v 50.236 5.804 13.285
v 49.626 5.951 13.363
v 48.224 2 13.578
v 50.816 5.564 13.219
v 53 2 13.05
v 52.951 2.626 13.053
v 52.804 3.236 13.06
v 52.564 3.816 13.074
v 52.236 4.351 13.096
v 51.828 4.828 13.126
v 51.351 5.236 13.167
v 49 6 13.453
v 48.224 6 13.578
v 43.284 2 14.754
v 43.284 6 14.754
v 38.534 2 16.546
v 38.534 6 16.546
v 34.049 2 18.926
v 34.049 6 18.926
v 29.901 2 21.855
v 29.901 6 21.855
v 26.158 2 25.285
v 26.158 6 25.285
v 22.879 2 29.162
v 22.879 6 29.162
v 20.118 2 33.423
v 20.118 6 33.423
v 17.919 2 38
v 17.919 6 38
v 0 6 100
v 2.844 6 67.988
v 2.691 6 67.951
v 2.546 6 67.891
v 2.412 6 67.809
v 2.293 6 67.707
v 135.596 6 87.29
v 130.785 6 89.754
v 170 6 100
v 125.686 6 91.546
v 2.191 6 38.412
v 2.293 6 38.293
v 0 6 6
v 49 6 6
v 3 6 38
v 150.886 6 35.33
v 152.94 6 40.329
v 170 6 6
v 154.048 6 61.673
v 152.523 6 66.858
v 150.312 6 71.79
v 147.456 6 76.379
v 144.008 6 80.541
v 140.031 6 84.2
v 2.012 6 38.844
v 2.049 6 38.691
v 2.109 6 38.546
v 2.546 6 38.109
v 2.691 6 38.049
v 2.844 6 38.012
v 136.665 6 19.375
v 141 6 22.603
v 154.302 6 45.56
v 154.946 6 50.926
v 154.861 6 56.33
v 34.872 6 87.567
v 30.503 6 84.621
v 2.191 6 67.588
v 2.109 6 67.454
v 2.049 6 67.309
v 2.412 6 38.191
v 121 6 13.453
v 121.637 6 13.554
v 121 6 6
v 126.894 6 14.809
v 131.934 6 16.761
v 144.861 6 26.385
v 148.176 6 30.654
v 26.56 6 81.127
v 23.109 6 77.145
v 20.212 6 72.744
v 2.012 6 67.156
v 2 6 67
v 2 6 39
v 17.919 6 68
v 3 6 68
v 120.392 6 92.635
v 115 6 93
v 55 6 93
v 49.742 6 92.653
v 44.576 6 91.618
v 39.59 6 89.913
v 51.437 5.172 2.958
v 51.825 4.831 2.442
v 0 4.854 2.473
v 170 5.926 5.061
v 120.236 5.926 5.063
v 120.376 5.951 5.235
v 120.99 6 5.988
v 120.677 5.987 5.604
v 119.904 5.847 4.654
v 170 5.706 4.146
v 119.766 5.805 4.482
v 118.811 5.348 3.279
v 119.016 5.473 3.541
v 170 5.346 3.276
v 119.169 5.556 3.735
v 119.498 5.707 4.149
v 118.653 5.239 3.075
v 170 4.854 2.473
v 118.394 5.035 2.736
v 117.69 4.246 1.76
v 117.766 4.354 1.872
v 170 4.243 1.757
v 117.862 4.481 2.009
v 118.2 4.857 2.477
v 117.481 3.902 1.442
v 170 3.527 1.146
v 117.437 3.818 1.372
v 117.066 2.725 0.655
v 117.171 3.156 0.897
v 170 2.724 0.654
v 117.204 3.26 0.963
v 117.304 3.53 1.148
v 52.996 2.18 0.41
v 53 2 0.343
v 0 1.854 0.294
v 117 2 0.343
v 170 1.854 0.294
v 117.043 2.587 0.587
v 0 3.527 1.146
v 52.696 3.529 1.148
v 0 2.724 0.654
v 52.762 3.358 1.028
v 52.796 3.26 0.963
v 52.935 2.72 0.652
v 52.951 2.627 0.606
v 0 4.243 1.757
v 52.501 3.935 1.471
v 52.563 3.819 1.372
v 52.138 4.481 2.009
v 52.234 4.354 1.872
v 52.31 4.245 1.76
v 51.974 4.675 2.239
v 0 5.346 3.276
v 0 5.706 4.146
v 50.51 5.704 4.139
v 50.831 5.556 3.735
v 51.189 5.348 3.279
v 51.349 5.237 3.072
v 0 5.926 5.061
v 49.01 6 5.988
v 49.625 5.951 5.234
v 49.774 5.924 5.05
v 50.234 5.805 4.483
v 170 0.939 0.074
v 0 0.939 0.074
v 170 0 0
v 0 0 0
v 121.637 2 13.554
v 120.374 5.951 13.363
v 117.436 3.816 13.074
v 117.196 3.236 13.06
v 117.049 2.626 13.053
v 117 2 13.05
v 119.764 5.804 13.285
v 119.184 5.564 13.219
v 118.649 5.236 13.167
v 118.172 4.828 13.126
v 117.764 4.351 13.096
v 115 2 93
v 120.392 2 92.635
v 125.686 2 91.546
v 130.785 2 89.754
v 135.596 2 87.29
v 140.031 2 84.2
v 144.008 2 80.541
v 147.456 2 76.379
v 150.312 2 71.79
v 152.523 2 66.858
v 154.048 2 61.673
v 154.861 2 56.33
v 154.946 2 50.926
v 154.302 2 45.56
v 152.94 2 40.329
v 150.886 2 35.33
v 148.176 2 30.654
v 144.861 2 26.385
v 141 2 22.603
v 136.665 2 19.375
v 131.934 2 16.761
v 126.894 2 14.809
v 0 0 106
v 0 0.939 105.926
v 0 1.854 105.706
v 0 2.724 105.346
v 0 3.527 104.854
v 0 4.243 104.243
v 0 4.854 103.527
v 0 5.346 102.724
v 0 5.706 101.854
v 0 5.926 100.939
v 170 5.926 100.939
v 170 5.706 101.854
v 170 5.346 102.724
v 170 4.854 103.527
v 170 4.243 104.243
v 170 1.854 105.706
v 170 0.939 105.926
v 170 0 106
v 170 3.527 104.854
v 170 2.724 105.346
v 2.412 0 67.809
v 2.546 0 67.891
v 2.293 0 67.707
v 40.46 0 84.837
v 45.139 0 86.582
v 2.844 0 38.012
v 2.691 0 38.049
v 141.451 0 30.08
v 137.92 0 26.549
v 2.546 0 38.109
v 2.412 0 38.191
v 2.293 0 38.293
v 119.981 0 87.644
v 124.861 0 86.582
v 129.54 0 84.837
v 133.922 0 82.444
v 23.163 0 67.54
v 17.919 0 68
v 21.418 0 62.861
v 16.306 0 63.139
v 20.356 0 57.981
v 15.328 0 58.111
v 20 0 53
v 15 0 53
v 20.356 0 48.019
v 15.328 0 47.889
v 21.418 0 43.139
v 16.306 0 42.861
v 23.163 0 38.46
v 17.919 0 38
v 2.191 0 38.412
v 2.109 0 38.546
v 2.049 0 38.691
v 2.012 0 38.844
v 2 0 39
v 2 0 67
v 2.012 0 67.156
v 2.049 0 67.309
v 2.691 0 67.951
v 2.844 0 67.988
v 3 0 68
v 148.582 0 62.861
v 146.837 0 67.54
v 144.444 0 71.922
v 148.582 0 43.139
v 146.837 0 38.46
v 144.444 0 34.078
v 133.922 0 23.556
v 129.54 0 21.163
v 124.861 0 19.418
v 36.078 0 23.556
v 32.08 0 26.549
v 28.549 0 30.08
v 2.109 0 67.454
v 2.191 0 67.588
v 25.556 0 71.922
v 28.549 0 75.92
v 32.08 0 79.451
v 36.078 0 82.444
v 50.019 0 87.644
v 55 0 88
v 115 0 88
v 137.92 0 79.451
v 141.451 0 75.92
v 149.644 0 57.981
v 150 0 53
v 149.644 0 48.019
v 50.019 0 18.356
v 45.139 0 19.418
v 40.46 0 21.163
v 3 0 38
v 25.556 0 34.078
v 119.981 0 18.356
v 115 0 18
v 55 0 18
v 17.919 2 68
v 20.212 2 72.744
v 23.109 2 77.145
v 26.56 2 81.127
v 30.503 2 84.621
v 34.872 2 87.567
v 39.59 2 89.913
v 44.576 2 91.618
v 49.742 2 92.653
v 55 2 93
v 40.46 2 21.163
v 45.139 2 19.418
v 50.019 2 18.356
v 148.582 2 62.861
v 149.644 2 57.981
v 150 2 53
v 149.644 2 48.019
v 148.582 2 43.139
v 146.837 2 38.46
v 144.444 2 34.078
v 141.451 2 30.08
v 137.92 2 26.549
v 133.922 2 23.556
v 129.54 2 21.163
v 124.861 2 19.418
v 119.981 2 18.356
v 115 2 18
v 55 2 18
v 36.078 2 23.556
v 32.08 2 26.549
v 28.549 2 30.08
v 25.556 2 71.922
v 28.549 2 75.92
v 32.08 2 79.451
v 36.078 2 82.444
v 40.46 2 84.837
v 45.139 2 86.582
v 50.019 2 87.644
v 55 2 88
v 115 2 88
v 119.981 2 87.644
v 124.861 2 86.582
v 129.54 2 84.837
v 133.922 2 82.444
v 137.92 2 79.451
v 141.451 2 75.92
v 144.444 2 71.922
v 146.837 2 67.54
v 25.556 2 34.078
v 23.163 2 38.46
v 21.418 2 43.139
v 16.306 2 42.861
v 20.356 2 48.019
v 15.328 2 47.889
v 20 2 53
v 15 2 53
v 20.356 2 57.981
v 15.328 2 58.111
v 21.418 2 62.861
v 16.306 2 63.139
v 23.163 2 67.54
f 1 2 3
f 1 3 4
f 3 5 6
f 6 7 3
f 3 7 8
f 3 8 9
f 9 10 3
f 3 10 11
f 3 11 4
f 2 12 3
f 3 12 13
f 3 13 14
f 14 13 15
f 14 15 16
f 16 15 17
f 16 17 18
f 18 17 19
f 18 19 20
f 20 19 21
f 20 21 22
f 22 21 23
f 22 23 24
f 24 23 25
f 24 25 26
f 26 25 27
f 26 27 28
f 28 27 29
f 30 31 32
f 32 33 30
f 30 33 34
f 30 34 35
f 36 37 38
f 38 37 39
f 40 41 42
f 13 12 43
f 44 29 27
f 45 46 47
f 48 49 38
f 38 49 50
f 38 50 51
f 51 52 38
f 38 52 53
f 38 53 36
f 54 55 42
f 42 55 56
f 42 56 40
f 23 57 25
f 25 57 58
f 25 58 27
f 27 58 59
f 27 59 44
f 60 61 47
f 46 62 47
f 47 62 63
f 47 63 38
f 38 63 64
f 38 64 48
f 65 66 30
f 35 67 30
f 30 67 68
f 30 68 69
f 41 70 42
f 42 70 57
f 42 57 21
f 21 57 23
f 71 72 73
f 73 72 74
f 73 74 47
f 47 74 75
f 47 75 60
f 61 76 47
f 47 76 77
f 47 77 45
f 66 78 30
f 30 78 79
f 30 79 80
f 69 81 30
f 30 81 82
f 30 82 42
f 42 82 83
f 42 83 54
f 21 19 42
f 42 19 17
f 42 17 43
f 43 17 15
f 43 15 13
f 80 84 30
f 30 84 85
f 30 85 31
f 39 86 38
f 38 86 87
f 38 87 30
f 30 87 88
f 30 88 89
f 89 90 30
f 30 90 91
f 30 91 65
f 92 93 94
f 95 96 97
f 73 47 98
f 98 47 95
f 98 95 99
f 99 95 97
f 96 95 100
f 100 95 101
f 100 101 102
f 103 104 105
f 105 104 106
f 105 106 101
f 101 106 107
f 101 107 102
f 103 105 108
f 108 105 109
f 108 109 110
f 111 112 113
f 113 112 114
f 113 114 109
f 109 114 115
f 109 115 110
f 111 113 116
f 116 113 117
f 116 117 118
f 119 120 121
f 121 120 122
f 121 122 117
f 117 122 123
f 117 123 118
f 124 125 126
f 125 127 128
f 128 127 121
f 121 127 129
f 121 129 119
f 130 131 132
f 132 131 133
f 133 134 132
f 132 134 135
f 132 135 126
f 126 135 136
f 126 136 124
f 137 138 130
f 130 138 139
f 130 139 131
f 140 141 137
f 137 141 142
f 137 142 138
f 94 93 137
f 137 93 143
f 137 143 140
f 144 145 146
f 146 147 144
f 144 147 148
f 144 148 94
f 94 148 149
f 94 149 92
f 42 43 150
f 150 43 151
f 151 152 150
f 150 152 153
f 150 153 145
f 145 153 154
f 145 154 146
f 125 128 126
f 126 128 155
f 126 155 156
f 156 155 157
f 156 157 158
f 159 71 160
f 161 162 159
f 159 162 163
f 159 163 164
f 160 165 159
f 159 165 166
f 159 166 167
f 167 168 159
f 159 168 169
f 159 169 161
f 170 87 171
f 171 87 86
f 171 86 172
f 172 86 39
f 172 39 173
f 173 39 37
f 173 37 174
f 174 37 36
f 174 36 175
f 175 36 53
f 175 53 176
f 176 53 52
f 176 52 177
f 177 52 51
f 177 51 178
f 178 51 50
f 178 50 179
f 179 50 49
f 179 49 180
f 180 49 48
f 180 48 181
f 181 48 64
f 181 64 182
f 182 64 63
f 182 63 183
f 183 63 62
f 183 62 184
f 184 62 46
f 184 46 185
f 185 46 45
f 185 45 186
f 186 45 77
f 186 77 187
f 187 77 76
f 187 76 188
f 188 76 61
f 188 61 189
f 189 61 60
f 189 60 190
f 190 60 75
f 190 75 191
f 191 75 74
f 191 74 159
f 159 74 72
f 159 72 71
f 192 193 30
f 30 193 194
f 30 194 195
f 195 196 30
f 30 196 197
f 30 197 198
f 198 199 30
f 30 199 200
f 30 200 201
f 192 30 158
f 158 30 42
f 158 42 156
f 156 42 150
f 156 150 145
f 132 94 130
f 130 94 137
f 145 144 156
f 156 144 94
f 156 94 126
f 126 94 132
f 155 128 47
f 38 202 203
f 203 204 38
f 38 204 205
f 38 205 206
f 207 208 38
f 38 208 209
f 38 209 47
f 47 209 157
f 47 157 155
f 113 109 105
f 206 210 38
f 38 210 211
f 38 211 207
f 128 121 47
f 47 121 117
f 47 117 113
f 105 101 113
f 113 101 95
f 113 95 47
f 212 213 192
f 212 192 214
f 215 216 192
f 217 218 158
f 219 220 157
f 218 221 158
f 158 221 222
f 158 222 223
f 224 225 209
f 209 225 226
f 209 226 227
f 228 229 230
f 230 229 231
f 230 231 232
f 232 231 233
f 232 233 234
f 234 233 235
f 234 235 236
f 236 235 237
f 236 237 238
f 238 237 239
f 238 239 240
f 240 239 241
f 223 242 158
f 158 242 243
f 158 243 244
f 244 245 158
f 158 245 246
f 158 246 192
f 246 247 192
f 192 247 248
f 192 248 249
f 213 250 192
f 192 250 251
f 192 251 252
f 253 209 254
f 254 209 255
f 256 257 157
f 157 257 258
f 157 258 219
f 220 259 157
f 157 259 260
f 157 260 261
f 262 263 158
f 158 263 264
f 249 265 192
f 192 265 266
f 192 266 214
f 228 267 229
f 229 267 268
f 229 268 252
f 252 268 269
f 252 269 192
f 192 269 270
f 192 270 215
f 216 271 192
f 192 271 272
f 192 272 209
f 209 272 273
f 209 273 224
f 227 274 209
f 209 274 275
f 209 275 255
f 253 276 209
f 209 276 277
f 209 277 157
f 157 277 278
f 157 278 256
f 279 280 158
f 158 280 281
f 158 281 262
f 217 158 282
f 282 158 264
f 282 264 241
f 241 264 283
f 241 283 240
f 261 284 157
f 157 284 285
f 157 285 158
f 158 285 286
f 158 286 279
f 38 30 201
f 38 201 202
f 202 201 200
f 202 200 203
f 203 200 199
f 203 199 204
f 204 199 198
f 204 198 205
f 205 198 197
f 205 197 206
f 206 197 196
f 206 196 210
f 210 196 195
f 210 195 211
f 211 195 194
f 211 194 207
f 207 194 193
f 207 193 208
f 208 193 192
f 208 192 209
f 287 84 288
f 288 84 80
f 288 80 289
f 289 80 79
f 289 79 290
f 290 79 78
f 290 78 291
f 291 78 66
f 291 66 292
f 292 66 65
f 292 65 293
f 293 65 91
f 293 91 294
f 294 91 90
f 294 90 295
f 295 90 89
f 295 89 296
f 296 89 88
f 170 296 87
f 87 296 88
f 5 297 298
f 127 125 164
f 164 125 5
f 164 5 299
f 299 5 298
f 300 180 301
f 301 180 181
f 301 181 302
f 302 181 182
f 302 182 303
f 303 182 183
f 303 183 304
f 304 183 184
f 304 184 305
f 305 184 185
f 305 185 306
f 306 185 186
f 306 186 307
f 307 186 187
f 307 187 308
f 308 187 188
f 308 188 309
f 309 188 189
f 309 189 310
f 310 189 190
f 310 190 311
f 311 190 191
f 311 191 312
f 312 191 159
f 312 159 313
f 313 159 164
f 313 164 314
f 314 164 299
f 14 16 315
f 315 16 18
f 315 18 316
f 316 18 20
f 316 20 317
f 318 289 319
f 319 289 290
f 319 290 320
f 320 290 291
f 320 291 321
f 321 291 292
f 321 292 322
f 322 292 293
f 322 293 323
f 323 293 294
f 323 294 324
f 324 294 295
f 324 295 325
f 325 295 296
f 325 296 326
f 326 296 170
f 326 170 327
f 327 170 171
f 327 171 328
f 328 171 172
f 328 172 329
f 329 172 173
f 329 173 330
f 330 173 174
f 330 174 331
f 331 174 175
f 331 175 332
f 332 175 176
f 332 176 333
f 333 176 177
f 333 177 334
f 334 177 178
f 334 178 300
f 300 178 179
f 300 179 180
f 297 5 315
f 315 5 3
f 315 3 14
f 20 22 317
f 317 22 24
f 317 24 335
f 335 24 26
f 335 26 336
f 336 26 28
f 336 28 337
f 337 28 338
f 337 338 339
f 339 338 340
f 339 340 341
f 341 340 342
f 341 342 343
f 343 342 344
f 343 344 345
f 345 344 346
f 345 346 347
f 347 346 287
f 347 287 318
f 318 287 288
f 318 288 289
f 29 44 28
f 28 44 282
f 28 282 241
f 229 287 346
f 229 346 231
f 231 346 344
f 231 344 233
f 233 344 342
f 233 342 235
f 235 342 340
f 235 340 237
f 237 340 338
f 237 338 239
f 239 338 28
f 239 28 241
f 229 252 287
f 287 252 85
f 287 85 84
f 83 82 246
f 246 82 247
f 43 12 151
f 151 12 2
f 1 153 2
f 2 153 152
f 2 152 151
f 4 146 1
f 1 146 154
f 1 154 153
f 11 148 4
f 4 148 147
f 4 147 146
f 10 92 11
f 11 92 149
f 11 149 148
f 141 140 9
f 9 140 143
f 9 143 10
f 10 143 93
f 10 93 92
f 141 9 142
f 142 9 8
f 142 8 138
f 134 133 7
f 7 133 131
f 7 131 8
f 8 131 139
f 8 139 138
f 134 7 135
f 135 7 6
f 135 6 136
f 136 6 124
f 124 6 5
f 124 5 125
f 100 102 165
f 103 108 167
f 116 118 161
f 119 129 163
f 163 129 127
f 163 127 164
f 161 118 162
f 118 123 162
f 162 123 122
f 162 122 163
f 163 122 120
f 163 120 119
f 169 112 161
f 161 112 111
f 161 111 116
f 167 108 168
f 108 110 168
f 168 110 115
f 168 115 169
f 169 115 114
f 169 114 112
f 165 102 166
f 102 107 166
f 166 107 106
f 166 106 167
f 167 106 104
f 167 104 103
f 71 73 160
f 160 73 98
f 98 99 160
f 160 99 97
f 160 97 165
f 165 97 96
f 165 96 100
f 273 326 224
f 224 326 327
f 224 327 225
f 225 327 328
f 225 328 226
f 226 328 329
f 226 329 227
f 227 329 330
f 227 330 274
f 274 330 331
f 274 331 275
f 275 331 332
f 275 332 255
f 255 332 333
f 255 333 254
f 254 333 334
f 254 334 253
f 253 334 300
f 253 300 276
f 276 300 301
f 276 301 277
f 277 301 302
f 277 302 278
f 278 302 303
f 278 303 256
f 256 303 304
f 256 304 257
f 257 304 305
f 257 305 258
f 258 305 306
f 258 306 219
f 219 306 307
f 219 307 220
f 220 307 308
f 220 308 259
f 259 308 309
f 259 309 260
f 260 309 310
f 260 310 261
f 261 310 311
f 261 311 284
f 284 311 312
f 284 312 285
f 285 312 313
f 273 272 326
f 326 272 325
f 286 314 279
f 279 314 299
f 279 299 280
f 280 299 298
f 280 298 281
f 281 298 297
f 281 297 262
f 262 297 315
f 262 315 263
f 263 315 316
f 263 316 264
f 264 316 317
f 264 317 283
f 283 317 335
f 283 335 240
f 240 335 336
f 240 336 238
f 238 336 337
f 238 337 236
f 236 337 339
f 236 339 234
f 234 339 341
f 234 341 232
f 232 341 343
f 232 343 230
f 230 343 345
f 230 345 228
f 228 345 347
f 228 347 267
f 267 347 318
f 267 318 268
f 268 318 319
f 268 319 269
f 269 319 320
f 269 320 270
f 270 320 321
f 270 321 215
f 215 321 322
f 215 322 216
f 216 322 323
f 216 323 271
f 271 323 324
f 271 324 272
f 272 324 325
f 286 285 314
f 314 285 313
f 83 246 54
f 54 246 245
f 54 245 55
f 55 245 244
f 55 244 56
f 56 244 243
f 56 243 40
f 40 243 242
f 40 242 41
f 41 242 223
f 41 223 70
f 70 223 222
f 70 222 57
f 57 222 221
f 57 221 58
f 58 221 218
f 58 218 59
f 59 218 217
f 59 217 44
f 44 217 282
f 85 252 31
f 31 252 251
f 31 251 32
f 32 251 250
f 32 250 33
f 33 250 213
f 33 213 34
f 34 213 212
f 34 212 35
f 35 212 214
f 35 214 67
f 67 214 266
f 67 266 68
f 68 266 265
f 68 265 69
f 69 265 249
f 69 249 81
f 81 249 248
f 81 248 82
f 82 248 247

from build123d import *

# Parameters (mm, degrees)
SKETCH1_W           = 170
SKETCH1_H           = 106
BOSS_EXTRUDE1_DEPTH = 6
FILLET1_R           = 6
CUT_EXTRUDE1_DEPTH  = 4
CUT_EXTRUDE2_DEPTH  = 201.429538741
CUT_EXTRUDE3_DEPTH  = 25
CUT_EXTRUDE4_DEPTH  = 201.379639771
FILLET2_R           = 1


with BuildPart() as part:
    # Sketch1 → Boss-Extrude1 (new body)
    with BuildSketch(Plane(origin=(0, 0, 0), x_dir=(1, 0, 0), z_dir=(0, 1, 0))):
        with Locations((85, -53)):
            Rectangle(SKETCH1_W, SKETCH1_H)
    extrude(amount=BOSS_EXTRUDE1_DEPTH)

    # Fillet1
    fillet1_edges = [part.edges().sort_by_distance(p)[0] for p in [
        (85, 6, 106),
        (85, 6, 0),
    ]]
    fillet(fillet1_edges, radius=FILLET1_R - 0.0001)  # a hair under: the kernel refuses the full size

    # Sketch2 → Cut-Extrude1 (cut)
    with BuildSketch(Plane(origin=(0, 6, 0), x_dir=(1, 0, 0), z_dir=(0, 1, 0))):
        with BuildLine():
            Line((55, -13), (115, -13))
            ThreePointArc((115, -13), (155, -53), (115, -93))
            Line((115, -93), (55, -93))
            ThreePointArc((55, -93), (15, -53), (55, -13))
        make_face()
    extrude(amount=-CUT_EXTRUDE1_DEPTH, mode=Mode.SUBTRACT)

    # Sketch3 → Cut-Extrude2 (cut, through all)
    with BuildSketch(Plane(origin=(0, 6, 0), x_dir=(1, 0, 0), z_dir=(0, 1, 0))):
        with BuildLine():
            Line((2, -53), (2, -38))
            Line((2, -38), (17.919007565, -38))
            ThreePointArc((17.919007565, -38), (15, -53), (17.919007565, -68))
            Line((17.919007565, -68), (2, -68))
            Line((2, -68), (2, -53))
        make_face()
    extrude(amount=-CUT_EXTRUDE2_DEPTH, mode=Mode.SUBTRACT)

    # Sketch5 → Cut-Extrude3 (cut)
    with BuildSketch(Plane.XY):
        with BuildLine():
            Line((49, 6), (121, 6))
            ThreePointArc((121, 6), (118.171572875, 4.828427125), (117, 2))
            Line((117, 2), (53, 2))
            ThreePointArc((53, 2), (51.828427125, 4.828427125), (49, 6))
        make_face()
    extrude(amount=CUT_EXTRUDE3_DEPTH, mode=Mode.SUBTRACT)

    # Sketch8 → Cut-Extrude4 (cut, through all)
    with BuildSketch(Plane(origin=(0, 2, 0), x_dir=(1, 0, 0), z_dir=(0, 1, 0))):
        with BuildLine():
            Line((55, -18), (115, -18))
            ThreePointArc((115, -18), (150, -53), (115, -88))
            Line((115, -88), (55, -88))
            ThreePointArc((55, -88), (20, -53), (55, -18))
        make_face()
    extrude(amount=-CUT_EXTRUDE4_DEPTH, mode=Mode.SUBTRACT)

    # Fillet2
    fillet2_edges = [part.edges().sort_by_distance(p)[0] for p in [
        (2, 3, 38),
        (2, 3, 68),
    ]]
    fillet(fillet2_edges, radius=FILLET2_R)


solid = part.part
